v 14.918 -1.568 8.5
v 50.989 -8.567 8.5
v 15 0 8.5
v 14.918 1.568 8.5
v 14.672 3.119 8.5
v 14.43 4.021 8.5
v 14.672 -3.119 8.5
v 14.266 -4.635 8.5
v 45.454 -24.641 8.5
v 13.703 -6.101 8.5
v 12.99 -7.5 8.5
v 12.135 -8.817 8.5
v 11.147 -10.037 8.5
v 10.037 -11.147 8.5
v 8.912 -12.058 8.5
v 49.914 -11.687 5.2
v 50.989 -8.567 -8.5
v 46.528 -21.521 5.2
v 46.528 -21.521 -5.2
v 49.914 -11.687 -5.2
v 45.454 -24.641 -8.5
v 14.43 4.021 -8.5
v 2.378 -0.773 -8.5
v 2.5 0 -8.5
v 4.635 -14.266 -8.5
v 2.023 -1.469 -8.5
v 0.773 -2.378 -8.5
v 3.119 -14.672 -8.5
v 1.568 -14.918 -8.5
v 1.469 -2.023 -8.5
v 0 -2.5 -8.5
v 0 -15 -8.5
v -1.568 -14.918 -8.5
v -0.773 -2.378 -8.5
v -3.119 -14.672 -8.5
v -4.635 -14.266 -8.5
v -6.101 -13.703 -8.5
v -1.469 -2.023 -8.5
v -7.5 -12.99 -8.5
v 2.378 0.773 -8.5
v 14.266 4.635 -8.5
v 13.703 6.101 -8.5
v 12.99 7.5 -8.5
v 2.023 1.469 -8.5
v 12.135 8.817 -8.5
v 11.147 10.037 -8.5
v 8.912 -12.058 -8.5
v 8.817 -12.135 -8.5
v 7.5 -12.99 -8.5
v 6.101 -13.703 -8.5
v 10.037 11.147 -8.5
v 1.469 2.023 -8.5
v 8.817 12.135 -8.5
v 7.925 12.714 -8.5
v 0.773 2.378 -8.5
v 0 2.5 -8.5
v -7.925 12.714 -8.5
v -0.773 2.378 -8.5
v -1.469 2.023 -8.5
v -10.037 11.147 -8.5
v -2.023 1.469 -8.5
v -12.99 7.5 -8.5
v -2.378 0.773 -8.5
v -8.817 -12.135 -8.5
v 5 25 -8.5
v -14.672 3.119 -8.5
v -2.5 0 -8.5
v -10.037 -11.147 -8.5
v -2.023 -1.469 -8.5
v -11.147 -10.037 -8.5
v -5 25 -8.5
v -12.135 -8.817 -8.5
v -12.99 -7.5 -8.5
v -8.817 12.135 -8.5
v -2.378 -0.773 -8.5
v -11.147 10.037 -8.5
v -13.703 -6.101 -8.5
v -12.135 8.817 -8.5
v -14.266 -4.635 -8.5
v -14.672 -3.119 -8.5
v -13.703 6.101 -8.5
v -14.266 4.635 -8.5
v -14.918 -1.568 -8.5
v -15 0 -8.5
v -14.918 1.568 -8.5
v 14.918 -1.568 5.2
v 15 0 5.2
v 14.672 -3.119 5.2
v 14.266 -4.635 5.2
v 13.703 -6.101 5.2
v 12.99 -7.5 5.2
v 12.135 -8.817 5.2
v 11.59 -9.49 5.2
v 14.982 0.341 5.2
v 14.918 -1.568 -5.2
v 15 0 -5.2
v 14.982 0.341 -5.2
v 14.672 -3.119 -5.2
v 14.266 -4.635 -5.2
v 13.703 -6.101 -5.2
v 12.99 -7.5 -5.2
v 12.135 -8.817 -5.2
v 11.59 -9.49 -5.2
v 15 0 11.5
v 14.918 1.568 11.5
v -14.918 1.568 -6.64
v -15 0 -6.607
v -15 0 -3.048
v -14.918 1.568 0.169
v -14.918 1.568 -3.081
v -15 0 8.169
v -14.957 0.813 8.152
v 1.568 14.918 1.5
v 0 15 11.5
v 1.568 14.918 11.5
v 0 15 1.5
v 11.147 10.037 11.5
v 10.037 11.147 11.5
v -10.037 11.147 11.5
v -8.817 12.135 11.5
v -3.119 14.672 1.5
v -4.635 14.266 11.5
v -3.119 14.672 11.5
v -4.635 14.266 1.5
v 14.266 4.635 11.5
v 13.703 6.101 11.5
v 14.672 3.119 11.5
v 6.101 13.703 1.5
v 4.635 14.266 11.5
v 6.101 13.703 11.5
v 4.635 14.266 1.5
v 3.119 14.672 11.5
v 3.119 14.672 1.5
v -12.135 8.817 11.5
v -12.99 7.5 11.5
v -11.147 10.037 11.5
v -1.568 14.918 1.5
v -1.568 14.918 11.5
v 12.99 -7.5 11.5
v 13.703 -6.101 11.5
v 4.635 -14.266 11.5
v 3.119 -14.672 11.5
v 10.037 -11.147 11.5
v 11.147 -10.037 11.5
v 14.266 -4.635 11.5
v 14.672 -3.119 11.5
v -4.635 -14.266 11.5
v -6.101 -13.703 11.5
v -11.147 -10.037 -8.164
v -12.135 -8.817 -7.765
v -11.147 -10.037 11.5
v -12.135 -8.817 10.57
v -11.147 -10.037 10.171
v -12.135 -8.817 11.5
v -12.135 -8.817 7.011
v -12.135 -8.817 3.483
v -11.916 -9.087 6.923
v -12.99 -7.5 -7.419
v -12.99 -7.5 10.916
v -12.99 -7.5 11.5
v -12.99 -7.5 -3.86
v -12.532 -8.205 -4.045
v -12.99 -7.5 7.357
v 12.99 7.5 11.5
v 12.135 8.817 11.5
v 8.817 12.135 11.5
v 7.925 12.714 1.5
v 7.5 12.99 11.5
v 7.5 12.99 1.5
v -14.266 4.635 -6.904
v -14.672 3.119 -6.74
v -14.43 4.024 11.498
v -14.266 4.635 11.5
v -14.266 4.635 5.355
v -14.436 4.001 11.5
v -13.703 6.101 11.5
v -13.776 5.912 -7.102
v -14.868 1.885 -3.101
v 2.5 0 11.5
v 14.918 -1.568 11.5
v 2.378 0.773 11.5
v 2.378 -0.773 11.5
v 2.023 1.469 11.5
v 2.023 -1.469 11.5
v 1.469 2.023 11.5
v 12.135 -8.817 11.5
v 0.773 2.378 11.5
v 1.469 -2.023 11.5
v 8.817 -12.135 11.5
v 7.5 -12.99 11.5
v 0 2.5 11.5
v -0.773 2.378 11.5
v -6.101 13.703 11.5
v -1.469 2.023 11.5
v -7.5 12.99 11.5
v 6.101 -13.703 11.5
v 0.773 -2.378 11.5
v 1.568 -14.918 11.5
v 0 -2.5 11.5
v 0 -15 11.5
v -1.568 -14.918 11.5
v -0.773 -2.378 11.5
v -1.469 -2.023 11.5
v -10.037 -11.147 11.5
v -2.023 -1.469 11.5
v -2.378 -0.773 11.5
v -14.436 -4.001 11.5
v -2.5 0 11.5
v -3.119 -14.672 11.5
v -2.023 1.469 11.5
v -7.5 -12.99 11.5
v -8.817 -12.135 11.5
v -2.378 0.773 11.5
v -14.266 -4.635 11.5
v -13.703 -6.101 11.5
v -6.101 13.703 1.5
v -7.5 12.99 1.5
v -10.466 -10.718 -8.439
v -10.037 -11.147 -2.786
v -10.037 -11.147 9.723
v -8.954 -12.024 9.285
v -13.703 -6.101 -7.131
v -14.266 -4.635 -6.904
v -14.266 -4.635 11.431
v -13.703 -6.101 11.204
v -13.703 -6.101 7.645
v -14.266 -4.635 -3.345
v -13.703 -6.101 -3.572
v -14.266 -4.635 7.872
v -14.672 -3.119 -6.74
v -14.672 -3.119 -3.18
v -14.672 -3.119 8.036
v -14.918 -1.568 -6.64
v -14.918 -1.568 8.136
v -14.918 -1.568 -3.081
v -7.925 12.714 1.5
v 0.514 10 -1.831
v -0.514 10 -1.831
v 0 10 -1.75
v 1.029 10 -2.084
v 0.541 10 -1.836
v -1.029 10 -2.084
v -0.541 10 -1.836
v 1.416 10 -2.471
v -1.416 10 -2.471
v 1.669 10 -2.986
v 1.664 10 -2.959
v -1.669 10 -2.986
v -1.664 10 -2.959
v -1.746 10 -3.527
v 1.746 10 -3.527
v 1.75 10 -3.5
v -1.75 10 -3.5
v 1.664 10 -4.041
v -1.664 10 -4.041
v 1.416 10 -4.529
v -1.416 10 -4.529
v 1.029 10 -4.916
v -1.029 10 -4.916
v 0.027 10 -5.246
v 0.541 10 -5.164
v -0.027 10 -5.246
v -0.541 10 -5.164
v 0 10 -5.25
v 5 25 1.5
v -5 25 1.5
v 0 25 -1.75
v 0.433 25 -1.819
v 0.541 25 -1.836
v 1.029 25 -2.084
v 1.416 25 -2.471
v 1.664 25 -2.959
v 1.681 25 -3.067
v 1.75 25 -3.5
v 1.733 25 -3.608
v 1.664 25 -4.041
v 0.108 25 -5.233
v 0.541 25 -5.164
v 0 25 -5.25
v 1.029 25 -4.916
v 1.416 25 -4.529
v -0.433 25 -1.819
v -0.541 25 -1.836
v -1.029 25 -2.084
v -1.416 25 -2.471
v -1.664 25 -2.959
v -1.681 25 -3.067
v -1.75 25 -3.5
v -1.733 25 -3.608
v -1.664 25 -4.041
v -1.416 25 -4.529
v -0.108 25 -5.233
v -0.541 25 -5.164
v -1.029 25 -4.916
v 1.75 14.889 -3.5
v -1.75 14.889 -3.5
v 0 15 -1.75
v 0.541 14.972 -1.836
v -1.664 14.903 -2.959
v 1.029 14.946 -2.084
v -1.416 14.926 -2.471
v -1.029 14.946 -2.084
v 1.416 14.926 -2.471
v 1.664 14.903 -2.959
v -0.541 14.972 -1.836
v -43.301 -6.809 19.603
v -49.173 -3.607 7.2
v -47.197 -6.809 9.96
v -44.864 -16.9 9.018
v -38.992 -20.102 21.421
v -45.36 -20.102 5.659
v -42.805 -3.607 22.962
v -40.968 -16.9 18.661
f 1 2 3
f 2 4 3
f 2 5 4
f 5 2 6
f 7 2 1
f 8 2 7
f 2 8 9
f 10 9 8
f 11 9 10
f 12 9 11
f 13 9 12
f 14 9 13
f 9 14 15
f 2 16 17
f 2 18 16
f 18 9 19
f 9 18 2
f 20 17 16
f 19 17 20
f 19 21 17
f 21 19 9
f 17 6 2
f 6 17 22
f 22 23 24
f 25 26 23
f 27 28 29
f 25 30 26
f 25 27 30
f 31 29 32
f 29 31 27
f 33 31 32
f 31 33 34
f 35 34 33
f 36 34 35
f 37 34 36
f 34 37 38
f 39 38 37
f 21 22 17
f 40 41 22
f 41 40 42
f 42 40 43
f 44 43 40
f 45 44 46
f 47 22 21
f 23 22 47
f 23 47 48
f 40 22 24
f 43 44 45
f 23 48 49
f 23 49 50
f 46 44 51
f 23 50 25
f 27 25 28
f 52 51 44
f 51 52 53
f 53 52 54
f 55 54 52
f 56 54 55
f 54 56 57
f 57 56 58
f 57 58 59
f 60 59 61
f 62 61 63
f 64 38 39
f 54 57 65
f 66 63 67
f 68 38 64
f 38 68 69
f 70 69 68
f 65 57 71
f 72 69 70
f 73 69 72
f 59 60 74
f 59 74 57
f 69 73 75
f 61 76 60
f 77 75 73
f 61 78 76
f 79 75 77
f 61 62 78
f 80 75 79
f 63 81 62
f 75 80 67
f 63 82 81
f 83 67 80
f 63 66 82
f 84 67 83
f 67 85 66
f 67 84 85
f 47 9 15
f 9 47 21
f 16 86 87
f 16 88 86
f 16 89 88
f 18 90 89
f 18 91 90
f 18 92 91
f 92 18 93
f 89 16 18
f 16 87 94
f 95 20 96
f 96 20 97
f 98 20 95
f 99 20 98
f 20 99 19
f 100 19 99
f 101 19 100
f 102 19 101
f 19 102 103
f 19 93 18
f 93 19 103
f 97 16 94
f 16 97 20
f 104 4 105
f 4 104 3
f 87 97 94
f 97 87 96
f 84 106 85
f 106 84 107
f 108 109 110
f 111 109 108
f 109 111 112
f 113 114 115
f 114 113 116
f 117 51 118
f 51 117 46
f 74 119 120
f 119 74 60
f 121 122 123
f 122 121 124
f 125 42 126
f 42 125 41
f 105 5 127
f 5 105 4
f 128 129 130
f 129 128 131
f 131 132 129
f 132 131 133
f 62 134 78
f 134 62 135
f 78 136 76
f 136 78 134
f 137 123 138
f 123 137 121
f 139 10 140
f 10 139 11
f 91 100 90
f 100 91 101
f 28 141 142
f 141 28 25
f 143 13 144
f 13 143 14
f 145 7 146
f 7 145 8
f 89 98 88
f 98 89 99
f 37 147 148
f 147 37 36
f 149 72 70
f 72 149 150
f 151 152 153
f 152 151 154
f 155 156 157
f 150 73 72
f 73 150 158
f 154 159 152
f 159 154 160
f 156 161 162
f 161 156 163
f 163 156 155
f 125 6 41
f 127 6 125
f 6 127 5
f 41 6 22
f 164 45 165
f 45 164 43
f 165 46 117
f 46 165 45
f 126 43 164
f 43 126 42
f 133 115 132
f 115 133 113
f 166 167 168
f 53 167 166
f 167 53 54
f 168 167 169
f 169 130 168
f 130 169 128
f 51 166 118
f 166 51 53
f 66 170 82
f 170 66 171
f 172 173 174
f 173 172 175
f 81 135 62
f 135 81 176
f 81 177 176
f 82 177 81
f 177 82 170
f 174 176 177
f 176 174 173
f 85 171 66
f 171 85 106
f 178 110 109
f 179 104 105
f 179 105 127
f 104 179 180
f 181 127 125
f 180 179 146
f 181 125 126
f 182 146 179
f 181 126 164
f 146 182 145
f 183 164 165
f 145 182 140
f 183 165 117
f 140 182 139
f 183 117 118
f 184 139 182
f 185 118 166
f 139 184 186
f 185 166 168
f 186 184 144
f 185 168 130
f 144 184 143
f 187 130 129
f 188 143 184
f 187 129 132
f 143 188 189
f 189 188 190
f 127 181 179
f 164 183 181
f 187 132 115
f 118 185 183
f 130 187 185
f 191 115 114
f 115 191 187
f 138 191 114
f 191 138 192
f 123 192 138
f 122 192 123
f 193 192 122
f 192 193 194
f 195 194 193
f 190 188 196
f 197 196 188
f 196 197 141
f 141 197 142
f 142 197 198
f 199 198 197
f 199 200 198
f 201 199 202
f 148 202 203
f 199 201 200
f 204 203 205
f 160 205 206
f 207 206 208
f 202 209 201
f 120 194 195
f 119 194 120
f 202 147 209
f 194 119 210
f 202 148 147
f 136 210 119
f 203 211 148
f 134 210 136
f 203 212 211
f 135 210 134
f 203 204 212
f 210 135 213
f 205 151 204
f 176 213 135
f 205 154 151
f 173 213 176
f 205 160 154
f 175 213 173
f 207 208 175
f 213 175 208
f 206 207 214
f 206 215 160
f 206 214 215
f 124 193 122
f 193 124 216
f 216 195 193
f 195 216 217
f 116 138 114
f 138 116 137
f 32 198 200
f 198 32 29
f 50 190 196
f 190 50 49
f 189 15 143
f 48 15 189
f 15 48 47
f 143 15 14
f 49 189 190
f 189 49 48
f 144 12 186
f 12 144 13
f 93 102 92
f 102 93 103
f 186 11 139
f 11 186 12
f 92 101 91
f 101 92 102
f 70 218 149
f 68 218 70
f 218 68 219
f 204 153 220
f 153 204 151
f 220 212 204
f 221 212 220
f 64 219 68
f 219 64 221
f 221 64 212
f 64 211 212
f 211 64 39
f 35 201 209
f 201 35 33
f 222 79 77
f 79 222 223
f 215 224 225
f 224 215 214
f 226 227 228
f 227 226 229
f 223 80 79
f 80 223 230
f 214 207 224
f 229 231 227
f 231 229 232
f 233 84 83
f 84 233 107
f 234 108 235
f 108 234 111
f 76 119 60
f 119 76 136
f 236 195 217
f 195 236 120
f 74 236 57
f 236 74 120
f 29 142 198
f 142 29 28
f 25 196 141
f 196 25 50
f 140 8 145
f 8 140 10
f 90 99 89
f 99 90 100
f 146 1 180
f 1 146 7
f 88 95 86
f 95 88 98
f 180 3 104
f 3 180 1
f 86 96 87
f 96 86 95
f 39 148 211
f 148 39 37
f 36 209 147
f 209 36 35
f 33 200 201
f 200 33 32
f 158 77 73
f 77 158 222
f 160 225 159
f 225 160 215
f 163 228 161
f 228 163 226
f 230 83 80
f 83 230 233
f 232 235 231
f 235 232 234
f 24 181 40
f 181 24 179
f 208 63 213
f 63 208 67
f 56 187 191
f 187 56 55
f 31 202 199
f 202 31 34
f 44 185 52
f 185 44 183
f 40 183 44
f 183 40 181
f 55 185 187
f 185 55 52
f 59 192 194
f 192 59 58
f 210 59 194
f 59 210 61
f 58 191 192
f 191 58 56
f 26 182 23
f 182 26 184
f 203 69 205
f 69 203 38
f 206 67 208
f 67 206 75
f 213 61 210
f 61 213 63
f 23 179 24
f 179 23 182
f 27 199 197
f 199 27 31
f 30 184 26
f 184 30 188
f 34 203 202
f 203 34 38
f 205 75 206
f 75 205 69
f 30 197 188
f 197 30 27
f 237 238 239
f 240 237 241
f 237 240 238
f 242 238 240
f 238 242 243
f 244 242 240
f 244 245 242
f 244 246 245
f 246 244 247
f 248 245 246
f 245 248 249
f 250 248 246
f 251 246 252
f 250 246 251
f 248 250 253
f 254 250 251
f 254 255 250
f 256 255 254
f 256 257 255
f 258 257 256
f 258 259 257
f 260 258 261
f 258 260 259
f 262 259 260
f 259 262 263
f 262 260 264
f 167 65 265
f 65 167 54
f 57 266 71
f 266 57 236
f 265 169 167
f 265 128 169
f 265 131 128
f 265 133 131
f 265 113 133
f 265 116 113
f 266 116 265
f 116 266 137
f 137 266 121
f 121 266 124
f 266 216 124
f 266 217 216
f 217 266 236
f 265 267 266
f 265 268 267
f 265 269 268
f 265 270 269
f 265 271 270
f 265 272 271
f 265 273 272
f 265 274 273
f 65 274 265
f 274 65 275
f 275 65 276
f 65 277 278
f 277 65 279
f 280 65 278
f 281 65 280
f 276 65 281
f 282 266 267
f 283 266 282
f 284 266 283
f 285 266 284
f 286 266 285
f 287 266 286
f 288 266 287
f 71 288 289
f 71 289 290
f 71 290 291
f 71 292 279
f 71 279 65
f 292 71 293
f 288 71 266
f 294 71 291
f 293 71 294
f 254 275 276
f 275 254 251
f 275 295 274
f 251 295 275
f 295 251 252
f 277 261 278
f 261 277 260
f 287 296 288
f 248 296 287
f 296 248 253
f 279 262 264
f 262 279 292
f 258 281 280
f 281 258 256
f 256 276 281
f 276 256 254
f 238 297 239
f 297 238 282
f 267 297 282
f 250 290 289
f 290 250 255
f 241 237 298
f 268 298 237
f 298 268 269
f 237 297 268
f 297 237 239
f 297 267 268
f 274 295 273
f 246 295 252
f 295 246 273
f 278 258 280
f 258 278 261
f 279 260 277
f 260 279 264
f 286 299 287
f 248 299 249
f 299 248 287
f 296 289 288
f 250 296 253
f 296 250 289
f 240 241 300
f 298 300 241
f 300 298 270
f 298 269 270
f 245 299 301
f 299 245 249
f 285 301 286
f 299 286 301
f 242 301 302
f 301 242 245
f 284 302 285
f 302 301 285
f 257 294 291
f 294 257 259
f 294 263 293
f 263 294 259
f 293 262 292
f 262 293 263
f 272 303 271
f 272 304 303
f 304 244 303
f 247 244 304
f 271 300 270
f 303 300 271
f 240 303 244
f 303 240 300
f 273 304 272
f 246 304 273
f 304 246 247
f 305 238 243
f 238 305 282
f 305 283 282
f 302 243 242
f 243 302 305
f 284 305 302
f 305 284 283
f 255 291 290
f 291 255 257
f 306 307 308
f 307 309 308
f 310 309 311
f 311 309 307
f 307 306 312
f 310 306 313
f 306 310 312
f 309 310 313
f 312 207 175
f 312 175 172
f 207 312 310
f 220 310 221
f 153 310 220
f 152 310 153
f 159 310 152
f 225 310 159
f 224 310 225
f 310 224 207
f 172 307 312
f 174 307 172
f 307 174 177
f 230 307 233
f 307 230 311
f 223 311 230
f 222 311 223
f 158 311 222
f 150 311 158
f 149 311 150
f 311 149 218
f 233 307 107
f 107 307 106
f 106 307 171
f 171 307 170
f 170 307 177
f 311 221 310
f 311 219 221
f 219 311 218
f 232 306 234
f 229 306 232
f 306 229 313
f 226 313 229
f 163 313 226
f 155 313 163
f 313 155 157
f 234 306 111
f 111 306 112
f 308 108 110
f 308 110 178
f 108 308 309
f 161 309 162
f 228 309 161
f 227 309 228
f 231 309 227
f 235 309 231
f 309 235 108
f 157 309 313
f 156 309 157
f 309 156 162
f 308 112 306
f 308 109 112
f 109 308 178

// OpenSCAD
rotate([0,0,-19])
translate([30,0,0])
difference(){
cube([42,17,17],center=true);
cube([43,10.4,10.4],center=true);
}

difference(){
translate([0,0,-3.5])
rotate([0,22,0])
rotate([0,0,14])
translate([-28,0,0])
difference(){
cube([42,17,17],center=true);
cube([43,10.4,10.4],center=true);
}
translate([0,0,-18.5])
cylinder(d=30,h=10);
}

$fn=60;
translate([0,0,-8.5])
difference(){
cylinder(d=30,h=20);
cylinder(d=5,h=20,$fn=20);
translate([0,10,5])rotate([-90,0,0])
cylinder(d=3.5,h=10);    
}

difference(){
translate([0,0,-8.5])
linear_extrude(height=10)
polygon([[-10,4],[10,4],[5,25],[-5,25]]);
translate([0,5,-3.5])rotate([-90,0,0])
cylinder(d=3.5,h=100,$fn=20);
}
